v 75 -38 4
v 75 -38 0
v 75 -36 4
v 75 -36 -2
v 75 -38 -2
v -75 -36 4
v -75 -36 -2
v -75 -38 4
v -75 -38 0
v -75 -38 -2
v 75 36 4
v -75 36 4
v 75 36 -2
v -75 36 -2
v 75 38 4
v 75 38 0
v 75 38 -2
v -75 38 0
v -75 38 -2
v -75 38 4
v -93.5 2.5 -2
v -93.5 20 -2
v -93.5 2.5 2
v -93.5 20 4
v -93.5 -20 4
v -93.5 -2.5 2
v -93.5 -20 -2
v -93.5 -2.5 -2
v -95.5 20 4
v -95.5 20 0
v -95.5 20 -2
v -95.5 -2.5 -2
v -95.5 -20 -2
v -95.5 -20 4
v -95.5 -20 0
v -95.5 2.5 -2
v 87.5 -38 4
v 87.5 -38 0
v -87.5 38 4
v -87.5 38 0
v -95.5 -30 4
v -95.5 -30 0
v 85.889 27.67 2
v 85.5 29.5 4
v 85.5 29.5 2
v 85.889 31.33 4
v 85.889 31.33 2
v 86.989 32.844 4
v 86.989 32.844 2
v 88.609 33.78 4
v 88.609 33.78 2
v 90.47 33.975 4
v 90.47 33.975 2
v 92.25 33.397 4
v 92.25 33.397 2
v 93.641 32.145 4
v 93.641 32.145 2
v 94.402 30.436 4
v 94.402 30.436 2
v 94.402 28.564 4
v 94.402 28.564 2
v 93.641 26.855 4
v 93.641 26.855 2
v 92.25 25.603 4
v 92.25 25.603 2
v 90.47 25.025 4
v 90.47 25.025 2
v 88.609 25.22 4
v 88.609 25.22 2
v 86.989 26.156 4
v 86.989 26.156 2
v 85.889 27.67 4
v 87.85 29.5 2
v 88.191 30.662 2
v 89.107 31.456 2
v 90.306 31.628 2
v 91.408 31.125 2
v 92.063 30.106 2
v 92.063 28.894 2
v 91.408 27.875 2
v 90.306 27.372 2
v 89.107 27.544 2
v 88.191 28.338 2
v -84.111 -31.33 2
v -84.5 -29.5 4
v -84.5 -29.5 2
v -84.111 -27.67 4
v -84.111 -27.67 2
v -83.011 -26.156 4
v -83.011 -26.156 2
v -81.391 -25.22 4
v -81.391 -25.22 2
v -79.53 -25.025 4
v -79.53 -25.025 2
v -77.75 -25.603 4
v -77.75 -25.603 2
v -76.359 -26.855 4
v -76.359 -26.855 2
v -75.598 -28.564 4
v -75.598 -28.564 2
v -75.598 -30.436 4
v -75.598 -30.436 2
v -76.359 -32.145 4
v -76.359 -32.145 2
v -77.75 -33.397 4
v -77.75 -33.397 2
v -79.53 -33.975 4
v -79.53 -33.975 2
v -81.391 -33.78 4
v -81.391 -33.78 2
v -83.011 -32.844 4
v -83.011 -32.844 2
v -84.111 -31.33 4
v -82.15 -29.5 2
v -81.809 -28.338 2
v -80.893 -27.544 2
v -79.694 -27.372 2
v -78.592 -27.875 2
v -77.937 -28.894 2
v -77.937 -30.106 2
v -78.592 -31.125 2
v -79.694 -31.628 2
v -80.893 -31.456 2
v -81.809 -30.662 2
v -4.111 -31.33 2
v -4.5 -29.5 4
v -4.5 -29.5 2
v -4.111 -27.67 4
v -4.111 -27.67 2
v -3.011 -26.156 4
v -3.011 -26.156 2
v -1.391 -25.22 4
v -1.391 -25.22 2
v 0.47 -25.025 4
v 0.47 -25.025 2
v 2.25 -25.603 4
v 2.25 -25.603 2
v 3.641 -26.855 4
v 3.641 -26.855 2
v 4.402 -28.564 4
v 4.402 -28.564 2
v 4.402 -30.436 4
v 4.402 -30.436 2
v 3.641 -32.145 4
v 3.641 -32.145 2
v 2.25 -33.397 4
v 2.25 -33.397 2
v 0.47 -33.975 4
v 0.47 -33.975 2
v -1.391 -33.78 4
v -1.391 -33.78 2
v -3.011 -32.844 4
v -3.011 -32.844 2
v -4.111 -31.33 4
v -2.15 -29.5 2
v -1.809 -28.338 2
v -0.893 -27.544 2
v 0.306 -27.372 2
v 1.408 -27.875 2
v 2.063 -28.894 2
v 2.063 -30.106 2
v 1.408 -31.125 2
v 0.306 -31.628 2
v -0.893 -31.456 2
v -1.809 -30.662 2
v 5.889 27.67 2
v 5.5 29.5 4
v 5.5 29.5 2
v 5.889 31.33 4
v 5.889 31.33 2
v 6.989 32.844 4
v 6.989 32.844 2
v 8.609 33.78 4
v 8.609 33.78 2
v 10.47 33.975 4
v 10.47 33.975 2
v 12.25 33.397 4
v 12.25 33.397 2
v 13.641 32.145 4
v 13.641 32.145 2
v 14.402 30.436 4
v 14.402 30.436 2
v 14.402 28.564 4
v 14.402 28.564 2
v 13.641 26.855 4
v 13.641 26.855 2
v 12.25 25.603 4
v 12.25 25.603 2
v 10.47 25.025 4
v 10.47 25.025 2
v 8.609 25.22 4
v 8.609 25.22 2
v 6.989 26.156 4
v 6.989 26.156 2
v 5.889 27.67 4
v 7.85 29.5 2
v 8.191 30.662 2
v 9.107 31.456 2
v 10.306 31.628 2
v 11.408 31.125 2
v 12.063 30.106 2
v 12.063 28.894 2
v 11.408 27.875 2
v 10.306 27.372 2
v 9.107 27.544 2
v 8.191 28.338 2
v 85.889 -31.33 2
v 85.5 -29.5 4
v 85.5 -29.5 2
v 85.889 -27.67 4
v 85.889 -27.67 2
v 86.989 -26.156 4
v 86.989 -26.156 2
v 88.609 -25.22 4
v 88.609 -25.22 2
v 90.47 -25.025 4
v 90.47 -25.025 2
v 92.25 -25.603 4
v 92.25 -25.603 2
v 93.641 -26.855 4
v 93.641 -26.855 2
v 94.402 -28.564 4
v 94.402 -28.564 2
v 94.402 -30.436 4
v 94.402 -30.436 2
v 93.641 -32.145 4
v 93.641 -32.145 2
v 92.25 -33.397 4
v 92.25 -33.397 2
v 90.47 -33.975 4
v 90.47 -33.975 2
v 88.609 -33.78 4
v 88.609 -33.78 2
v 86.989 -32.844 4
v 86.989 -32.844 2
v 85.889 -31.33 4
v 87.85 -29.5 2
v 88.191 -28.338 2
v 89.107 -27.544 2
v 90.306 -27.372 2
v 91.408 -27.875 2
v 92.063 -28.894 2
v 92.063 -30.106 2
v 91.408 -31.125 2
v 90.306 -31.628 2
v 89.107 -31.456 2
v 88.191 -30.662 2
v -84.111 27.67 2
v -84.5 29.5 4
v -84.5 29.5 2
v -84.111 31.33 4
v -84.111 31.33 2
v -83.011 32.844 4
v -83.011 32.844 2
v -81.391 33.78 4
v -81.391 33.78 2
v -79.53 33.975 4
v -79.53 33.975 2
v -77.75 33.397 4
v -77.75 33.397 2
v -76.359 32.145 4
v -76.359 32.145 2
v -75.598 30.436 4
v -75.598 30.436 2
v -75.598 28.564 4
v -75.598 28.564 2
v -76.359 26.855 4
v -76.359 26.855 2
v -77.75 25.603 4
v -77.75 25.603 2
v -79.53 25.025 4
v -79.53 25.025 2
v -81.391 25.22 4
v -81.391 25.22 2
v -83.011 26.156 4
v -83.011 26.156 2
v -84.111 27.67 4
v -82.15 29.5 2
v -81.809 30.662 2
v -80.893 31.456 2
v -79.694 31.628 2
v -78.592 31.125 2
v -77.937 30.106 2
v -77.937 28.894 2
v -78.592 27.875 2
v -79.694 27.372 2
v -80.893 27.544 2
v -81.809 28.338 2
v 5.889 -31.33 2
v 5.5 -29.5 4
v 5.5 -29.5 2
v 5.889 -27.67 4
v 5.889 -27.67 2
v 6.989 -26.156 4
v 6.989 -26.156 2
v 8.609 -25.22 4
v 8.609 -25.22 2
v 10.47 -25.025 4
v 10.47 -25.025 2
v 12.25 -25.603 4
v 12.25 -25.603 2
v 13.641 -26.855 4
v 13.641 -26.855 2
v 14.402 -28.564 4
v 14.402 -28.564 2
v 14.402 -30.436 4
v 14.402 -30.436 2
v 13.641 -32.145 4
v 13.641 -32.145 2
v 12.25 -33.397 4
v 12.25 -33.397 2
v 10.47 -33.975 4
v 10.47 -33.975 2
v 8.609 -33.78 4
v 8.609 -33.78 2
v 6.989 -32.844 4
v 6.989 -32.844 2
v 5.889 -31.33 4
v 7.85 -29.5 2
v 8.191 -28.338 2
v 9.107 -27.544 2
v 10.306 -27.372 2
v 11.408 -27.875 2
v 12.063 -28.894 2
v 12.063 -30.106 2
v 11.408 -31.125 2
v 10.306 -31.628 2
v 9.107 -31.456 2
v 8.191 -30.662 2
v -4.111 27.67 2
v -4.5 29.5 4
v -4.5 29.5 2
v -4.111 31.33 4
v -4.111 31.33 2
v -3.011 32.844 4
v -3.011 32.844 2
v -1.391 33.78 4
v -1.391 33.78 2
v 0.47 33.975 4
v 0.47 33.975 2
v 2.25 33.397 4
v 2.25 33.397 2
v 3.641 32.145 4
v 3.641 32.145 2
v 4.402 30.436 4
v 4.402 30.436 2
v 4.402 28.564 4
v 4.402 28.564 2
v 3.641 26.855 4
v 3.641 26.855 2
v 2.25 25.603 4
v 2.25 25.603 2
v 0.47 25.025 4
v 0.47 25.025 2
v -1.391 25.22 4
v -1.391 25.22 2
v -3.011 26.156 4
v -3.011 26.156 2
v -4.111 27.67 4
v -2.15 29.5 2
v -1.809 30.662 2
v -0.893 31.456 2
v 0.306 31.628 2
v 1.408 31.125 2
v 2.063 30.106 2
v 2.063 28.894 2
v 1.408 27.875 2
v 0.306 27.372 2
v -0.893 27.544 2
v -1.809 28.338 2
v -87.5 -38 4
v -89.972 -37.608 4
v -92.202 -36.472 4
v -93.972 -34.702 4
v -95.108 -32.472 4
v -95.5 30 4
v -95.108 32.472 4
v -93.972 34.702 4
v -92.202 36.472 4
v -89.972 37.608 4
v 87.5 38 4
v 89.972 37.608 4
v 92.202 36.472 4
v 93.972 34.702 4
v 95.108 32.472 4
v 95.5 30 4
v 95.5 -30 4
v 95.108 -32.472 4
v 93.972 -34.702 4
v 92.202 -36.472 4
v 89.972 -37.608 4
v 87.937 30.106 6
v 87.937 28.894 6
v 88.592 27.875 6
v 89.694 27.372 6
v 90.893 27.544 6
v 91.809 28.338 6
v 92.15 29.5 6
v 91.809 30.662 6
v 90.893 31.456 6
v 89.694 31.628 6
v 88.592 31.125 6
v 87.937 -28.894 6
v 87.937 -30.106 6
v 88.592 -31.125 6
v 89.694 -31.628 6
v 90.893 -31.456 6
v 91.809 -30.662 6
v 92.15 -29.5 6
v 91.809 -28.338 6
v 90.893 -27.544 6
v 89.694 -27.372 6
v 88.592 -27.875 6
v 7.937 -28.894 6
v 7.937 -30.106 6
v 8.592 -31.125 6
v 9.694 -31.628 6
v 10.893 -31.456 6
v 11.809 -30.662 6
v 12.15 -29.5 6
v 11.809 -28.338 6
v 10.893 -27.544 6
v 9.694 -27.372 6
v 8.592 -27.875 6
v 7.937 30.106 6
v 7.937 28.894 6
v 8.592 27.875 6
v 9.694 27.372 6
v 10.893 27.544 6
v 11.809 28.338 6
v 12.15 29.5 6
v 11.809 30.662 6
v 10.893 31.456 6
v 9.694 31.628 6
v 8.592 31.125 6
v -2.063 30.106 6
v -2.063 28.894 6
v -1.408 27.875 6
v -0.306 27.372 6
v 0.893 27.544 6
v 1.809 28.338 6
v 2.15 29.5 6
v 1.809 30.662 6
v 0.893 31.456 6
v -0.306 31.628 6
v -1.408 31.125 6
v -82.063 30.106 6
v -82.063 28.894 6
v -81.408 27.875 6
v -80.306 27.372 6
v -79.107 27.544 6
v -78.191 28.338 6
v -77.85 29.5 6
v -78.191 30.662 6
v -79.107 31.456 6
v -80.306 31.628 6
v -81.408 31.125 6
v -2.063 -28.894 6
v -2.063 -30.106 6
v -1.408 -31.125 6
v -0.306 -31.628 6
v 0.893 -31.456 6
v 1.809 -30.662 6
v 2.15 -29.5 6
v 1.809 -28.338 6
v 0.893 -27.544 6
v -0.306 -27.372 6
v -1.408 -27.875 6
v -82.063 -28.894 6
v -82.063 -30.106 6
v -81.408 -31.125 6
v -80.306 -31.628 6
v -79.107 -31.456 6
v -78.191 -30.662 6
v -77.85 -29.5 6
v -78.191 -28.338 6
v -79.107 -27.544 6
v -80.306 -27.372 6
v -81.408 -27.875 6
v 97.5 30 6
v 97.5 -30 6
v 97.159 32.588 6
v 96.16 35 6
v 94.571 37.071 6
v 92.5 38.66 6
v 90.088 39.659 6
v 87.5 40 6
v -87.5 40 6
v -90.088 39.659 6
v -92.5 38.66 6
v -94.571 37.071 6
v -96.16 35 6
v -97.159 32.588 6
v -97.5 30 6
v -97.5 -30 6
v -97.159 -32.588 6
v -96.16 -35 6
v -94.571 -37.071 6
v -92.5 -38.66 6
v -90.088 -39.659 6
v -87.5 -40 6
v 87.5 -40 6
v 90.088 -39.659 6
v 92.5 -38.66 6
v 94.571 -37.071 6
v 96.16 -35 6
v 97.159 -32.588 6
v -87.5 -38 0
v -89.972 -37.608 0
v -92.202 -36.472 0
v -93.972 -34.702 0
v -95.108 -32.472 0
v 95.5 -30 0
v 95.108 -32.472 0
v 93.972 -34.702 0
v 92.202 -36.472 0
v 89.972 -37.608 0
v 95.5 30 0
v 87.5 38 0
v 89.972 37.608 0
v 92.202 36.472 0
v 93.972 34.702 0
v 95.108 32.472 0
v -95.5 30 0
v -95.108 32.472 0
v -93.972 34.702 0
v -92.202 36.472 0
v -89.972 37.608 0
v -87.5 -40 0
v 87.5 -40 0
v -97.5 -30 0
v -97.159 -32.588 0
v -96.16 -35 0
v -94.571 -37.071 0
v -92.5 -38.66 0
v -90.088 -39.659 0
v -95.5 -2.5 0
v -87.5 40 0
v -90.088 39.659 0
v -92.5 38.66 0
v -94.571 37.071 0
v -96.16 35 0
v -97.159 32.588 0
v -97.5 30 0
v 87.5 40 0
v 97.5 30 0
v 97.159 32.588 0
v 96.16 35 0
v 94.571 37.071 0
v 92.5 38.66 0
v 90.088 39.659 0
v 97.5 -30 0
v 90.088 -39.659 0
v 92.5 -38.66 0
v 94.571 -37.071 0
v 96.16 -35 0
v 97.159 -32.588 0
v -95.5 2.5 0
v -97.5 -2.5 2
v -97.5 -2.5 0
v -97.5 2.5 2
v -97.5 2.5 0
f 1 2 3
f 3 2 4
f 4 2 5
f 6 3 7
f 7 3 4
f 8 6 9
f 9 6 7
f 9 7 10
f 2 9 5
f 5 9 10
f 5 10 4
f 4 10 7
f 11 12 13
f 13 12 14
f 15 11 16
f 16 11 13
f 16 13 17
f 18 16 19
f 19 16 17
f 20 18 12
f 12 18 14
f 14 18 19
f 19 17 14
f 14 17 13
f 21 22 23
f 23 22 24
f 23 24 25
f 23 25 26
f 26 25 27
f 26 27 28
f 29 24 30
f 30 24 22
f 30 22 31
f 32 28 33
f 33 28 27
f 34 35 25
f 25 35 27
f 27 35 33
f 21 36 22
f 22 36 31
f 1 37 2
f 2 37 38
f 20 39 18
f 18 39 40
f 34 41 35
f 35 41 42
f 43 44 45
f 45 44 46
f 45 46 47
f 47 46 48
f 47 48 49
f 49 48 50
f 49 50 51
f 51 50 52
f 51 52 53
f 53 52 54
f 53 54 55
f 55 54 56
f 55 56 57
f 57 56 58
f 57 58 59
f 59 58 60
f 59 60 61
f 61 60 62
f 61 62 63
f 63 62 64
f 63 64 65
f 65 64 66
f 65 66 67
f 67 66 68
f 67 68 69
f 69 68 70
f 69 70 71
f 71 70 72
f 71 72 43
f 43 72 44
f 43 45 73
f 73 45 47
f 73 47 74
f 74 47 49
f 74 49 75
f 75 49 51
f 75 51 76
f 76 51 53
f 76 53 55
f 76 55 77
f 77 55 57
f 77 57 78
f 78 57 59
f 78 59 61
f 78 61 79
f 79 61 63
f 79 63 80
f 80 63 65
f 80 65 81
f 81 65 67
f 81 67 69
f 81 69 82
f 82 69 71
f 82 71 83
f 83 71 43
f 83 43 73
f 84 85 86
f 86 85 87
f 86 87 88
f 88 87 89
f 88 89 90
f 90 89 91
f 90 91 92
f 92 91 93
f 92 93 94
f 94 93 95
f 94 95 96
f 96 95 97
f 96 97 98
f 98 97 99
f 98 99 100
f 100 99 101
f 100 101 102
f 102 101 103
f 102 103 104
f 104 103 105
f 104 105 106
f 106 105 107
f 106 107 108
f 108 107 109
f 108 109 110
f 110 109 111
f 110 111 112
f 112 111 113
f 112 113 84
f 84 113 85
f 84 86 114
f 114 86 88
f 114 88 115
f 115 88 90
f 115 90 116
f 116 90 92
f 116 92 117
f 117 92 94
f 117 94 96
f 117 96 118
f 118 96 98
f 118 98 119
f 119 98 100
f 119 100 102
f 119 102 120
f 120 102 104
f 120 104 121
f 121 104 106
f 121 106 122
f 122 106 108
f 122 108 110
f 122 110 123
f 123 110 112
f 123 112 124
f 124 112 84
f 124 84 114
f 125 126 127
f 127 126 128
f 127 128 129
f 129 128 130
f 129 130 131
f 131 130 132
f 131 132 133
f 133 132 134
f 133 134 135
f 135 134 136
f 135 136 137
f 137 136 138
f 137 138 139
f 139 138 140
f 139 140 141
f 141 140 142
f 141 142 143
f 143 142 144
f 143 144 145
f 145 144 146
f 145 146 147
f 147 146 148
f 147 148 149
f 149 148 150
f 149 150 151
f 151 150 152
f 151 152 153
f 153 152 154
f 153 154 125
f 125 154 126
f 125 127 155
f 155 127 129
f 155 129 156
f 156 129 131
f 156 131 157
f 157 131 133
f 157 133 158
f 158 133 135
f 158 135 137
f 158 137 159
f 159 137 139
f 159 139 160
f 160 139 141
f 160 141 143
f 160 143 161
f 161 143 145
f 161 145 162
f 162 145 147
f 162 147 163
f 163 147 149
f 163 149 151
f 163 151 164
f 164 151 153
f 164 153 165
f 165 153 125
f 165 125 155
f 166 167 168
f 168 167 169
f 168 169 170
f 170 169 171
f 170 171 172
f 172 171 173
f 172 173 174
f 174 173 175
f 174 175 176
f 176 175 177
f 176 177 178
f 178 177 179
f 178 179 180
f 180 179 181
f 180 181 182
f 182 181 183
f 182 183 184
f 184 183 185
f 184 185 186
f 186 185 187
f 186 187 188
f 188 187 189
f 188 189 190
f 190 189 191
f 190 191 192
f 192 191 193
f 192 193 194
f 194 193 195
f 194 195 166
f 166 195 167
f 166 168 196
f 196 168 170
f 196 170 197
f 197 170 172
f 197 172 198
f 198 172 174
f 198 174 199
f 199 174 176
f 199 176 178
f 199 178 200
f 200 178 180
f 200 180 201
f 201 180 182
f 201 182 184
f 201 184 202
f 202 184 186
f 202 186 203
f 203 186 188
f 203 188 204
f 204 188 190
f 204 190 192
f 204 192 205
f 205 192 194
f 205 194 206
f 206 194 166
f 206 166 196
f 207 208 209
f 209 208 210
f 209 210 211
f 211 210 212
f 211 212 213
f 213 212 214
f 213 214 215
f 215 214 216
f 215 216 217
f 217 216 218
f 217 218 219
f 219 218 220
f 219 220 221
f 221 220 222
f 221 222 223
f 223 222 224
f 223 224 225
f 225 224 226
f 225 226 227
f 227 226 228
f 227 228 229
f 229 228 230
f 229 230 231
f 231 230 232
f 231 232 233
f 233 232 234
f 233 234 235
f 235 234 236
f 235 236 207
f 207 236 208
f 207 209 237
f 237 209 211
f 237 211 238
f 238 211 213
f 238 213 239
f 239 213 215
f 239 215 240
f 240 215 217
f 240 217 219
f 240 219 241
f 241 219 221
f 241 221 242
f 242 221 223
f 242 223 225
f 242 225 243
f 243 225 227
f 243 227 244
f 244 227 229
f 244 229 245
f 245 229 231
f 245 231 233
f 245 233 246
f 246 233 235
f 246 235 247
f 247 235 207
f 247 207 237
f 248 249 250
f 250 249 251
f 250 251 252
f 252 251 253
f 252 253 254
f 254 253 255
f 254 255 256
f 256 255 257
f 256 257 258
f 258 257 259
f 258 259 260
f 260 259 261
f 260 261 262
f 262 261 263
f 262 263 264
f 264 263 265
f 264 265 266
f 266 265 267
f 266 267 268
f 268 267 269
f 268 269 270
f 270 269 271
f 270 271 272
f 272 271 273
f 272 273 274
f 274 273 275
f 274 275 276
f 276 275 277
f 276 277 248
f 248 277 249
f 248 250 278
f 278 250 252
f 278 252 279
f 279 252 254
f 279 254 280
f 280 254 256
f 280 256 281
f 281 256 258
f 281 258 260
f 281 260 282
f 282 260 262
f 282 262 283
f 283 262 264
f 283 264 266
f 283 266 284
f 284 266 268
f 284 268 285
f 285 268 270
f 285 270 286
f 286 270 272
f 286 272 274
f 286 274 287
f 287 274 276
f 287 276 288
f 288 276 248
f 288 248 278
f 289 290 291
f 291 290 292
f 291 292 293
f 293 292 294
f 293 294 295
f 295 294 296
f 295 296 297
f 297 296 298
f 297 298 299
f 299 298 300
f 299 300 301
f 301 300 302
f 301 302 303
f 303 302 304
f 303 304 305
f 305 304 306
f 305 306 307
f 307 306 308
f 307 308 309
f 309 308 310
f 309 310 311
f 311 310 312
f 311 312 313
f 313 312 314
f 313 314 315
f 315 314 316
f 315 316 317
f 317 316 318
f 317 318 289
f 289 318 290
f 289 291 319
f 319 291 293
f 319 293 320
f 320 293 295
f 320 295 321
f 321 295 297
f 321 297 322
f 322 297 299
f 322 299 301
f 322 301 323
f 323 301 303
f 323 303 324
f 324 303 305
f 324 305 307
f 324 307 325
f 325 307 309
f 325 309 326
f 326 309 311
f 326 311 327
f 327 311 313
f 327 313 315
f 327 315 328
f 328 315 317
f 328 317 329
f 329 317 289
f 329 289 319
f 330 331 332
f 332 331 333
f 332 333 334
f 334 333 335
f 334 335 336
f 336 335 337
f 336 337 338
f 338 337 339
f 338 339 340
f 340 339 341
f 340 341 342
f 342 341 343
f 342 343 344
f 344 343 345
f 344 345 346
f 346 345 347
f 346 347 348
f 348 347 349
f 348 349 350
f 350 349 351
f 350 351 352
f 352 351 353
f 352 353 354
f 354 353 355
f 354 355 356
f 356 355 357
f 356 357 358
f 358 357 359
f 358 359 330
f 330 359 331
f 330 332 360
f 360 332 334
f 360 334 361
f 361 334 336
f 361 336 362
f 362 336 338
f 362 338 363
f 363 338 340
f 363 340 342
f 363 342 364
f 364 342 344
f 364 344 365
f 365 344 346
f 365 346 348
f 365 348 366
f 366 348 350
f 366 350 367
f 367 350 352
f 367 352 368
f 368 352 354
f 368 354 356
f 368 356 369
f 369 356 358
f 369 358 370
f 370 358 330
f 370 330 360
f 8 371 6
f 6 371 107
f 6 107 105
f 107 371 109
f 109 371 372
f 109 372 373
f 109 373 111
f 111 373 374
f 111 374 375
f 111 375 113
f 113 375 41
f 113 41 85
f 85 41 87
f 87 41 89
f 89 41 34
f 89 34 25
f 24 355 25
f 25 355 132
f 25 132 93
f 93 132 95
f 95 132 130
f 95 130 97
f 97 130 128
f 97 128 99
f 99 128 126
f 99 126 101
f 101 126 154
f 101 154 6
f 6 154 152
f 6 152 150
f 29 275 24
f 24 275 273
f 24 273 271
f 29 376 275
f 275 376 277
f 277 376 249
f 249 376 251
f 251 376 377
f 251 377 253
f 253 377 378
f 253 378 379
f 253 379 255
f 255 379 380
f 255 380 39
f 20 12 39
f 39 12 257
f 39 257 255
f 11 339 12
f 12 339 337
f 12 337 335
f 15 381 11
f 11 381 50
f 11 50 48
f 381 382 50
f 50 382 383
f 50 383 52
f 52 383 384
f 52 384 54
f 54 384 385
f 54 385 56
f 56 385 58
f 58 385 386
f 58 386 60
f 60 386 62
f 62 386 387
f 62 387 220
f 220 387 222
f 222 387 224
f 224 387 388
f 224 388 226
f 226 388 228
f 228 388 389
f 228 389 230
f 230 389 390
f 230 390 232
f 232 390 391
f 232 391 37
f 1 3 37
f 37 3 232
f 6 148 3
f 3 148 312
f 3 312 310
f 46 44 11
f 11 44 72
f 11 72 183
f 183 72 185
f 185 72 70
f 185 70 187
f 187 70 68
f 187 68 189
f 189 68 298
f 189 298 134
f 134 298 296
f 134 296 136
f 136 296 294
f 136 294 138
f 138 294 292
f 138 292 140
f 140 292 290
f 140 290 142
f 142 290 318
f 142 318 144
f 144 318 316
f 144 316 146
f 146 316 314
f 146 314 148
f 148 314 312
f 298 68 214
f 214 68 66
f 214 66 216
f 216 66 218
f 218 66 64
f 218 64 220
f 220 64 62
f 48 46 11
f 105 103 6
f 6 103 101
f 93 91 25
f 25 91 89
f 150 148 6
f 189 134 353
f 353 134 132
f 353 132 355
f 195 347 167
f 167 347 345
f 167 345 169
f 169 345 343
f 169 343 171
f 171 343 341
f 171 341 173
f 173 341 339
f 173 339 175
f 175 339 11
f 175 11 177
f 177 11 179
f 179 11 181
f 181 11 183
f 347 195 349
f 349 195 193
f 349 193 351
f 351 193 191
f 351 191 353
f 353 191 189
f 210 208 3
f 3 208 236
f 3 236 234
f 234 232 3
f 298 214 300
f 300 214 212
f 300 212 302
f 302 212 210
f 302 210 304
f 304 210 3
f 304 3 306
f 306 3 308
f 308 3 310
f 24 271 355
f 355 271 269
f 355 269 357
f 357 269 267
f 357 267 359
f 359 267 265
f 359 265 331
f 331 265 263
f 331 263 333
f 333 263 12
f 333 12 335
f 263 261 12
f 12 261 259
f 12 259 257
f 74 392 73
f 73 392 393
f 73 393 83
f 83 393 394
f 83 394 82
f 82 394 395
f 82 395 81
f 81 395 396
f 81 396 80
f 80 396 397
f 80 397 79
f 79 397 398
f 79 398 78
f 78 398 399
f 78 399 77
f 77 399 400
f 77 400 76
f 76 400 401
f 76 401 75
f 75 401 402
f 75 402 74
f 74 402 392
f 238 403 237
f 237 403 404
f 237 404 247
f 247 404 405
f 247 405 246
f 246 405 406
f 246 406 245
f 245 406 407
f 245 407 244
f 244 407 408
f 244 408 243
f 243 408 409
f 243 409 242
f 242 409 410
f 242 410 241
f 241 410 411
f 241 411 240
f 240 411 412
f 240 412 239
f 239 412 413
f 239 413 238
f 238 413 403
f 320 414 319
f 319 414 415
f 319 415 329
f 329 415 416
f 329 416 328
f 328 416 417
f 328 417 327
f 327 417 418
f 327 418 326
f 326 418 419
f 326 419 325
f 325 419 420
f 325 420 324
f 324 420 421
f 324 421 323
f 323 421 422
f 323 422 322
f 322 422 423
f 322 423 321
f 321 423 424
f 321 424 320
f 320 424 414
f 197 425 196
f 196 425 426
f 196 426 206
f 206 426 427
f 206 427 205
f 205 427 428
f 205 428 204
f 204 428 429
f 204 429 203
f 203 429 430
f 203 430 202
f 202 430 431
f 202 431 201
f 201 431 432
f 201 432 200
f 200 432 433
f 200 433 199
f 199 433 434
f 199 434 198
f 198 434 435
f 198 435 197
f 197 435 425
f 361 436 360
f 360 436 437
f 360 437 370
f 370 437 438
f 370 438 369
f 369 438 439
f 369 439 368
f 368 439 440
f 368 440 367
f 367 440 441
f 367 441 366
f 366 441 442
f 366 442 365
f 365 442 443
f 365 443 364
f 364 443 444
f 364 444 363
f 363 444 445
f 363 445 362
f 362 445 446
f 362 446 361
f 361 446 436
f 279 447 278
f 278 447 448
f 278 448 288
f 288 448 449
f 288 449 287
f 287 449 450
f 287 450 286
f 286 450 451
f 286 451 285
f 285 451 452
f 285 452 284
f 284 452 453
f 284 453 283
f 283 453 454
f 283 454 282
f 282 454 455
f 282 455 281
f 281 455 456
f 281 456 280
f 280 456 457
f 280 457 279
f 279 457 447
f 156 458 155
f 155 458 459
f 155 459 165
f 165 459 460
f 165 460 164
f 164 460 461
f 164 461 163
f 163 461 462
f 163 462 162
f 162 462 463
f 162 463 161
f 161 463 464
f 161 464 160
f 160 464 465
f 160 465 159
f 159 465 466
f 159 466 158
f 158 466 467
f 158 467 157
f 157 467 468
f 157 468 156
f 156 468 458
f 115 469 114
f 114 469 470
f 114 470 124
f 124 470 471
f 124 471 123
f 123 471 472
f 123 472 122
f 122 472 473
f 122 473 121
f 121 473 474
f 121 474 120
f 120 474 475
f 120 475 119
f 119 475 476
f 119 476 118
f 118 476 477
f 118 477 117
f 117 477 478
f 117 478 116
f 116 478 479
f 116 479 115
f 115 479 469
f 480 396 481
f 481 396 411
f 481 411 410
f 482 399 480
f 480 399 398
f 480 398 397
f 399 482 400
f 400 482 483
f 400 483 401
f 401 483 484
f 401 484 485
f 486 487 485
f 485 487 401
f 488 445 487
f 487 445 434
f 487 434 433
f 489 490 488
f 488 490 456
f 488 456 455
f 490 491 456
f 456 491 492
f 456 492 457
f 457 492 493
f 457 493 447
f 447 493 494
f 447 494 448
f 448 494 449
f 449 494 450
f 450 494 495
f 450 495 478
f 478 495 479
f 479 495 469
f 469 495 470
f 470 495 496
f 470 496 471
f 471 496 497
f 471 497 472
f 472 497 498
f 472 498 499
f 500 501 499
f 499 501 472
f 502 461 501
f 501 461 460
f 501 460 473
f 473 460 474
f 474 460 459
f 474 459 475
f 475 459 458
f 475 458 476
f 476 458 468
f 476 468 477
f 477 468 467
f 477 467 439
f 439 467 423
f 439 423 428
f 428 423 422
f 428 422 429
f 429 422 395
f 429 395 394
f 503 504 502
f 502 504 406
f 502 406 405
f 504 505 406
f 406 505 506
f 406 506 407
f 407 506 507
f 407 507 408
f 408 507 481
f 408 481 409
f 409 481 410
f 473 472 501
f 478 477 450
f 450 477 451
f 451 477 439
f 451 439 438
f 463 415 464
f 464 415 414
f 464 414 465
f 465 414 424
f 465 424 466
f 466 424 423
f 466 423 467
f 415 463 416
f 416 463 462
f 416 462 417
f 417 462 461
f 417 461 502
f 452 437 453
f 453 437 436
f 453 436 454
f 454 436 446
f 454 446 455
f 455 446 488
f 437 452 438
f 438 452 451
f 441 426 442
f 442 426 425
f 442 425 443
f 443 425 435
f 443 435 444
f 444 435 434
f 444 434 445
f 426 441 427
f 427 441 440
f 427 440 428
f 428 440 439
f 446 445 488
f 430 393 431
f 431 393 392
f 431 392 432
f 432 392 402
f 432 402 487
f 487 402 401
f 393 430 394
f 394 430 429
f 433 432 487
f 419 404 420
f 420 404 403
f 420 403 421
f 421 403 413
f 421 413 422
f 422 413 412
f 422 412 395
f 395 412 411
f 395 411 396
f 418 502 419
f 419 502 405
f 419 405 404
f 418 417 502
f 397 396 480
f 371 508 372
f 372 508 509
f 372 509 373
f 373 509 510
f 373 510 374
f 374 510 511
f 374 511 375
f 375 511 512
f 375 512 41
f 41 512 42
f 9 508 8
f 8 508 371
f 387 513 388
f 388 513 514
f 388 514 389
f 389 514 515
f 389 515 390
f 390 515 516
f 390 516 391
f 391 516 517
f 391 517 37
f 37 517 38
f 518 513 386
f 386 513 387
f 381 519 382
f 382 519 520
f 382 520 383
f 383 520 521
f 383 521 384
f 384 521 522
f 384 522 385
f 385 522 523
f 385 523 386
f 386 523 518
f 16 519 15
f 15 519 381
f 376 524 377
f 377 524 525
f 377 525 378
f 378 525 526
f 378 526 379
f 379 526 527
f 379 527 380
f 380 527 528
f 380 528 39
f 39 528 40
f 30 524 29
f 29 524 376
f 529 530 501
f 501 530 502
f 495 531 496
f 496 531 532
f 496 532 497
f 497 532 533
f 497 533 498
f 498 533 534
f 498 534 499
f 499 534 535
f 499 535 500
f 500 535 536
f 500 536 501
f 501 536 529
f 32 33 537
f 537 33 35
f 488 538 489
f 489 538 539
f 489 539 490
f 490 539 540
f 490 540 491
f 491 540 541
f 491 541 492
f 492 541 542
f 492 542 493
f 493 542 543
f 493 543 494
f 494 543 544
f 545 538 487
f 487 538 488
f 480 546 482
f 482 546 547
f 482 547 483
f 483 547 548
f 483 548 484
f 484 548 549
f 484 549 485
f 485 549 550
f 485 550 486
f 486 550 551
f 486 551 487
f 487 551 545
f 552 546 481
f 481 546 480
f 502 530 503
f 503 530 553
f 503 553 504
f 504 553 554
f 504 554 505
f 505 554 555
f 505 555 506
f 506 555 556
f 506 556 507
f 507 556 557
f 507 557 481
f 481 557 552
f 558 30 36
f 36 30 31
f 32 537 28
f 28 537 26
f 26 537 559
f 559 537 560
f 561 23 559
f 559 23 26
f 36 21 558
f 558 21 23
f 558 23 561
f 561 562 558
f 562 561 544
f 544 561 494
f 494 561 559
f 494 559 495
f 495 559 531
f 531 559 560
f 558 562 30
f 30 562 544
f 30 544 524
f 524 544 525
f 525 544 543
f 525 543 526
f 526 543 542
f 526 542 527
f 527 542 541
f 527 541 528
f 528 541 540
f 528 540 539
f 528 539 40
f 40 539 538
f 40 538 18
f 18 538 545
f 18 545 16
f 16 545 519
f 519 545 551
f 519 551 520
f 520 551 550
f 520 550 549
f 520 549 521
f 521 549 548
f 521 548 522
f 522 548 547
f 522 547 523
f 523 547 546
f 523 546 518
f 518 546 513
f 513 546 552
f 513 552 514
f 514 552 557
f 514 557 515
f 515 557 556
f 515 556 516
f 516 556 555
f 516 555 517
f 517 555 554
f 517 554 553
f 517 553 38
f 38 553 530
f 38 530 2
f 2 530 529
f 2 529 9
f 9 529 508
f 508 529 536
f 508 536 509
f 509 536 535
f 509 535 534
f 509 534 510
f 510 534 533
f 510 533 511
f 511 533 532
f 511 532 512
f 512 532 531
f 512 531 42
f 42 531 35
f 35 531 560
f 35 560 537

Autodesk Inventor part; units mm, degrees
ref_plane "YZ Plane" through (0, 0, 0) normal (1, 0, 0) x (0, 1, 0)
ref_plane "XZ Plane" through (0, 0, 0) normal (0, 1, 0) x (-1, 0, 0)
ref_plane "XY Plane" through (0, 0, 0) normal (0, 0, 1) x (1, 0, 0)
ref_plane "Work Plane1" through (0, 0, 0) normal (0, 0, 1) x (1, 0, 0)
sketch "Sketch1" plane through (0, 0, 0) normal (0, 0, 1) x (1, 0, 0)
  arc A0 (87.5, -38) -> (95.5, -30) centre (87.5, -30) ccw projected
  line L0 (87.5, -38) -> (-87.5, -38) projected
  arc A1 (-95.5, -30) -> (-87.5, -38) centre (-87.5, -30) ccw projected
  line L1 (-95.5, -30) -> (-95.5, 30) projected
  arc A2 (-87.5, 38) -> (-95.5, 30) centre (-87.5, 30) ccw projected
  line L2 (-87.5, 38) -> (87.5, 38) projected
  arc A3 (95.5, 30) -> (87.5, 38) centre (87.5, 30) ccw projected
  line L3 (95.5, 30) -> (95.5, -30) projected
  line L4 (-87.5, -40) -> (87.5, -40) projected
  arc A4 (87.5, -40) -> (97.5, -30) centre (87.5, -30) ccw projected
  line L5 (97.5, -30) -> (97.5, 30) projected
  arc A5 (97.5, 30) -> (87.5, 40) centre (87.5, 30) ccw projected
  line L6 (87.5, 40) -> (-87.5, 40) projected
  arc A6 (-87.5, 40) -> (-97.5, 30) centre (-87.5, 30) ccw projected
  line L7 (-97.5, 30) -> (-97.5, -30) projected
  arc A7 (-97.5, -30) -> (-87.5, -40) centre (-87.5, -30) ccw projected
  point P0 (0, 0)
extrude "Extrusion1" add sketch "Sketch1" along normal blind 4
sketch "Sketch2" plane through (0, 0, 4) normal (0, 0, 1) x (1, 0, 0)
  arc A0 (87.5, -40) -> (97.5, -30) centre (87.5, -30) ccw projected
  line L0 (97.5, -30) -> (97.5, 30) projected
  arc A1 (97.5, 30) -> (87.5, 40) centre (87.5, 30) ccw projected
  line L1 (87.5, 40) -> (-87.5, 40) projected
  arc A2 (-87.5, 40) -> (-97.5, 30) centre (-87.5, 30) ccw projected
  line L2 (-97.5, 30) -> (-97.5, -30) projected
  arc A3 (-97.5, -30) -> (-87.5, -40) centre (-87.5, -30) ccw projected
  line L3 (-87.5, -40) -> (87.5, -40) projected
  line L4 (-95.5, -30) -> (-95.5, 30) projected
  arc A4 (-87.5, 38) -> (-95.5, 30) centre (-87.5, 30) ccw projected
  line L5 (-87.5, 38) -> (87.5, 38) projected
  arc A5 (95.5, 30) -> (87.5, 38) centre (87.5, 30) ccw projected
  line L6 (95.5, 30) -> (95.5, -30) projected
  arc A6 (87.5, -38) -> (95.5, -30) centre (87.5, -30) ccw projected
  line L7 (87.5, -38) -> (-87.5, -38) projected
  arc A7 (-95.5, -30) -> (-87.5, -38) centre (-87.5, -30) ccw projected
  circle A8 centre (-80, -29.5) radius 2.15 projected
  circle A9 centre (0, -29.5) radius 2.15 projected
  circle A10 centre (-80, 29.5) radius 2.15 projected
  circle A11 centre (0, 29.5) radius 2.15 projected
  circle A12 centre (10, 29.5) radius 2.15 projected
  circle A13 centre (10, -29.5) radius 2.15 projected
  circle A14 centre (90, -29.5) radius 2.15 projected
  circle A15 centre (90, 29.5) radius 2.15 projected
  circle A16 centre (-80, 29.5) radius 1.75
  circle A17 centre (-80, -29.5) radius 1.75
  circle A18 centre (0, -29.5) radius 1.75
  circle A19 centre (10, -29.5) radius 1.75
  circle A20 centre (0, 29.5) radius 1.75
  circle A21 centre (10, 29.5) radius 1.75
  circle A22 centre (90, 29.5) radius 1.75
  circle A23 centre (90, -29.5) radius 1.75
  point P0 (0, 0)
  dimension "d2" = 3.5
  dimension "d3" = 3.5
  dimension "d4" = 3.5
  dimension "d5" = 3.5
  dimension "d6" = 3.5
  dimension "d7" = 3.5
  dimension "d8" = 3.5
  dimension "d9" = 3.5
extrude "Extrusion2" add sketch "Sketch2" along normal blind 2 contours L3 A3 L2 A2 L1 A1 L0 A0 | L4 A4 L5 A5 L6 A6 L7 A7
sketch "Sketch3" plane through (0, 0, 4) normal (0, 0, -1) x (-1, 0, 0)
  circle A0 centre (80, 29.5) radius 2.15 projected
  circle A1 centre (80, 29.5) radius 4.5
  circle A2 centre (80, -29.5) radius 2.15 projected
  circle A3 centre (80, -29.5) radius 4.5
  circle A4 centre (0, 29.5) radius 2.15 projected
  circle A5 centre (0, 29.5) radius 4.5
  circle A6 centre (0, -29.5) radius 2.15 projected
  circle A7 centre (0, -29.5) radius 4.5
  circle A8 centre (-10, 29.5) radius 2.15 projected
  circle A9 centre (-10, 29.5) radius 4.5
  circle A10 centre (-10, -29.5) radius 2.15 projected
  circle A11 centre (-10, -29.5) radius 4.5
  circle A12 centre (-90, 29.5) radius 2.15 projected
  circle A13 centre (-90, 29.5) radius 4.5
  circle A14 centre (-90, -29.5) radius 2.15 projected
  circle A15 centre (-90, -29.5) radius 4.5
  point P0 (0, 0)
  dimension "d17" = 9
extrude "Extrusion3" add sketch "Sketch3" along normal blind 2
sketch "Sketch4" plane through (0, 0, 4) normal (0, 0, -1) x (-1, 0, 0)
  line L0 (75, 36) -> (-75, 36)
  line L1 (-75, 36) -> (-75, 38)
  line L2 (-75, 38) -> (75, 38)
  line L3 (75, 38) -> (75, 36)
  line L4 (87.5, 38) -> (-87.5, 38) projected
  line L5 (-75, -36) -> (75, -36)
  line L6 (75, -38) -> (-75, -38)
  line L7 (75, -36) -> (75, -38)
  line L8 (-75, -38) -> (-75, -36)
  line L9 (-95.5, 20) -> (-93.5, 20)
  line L10 (-93.5, 20) -> (-93.5, -20)
  line L11 (-93.5, -20) -> (-95.5, -20)
  line L12 (-95.5, -20) -> (-95.5, 20)
  line L13 (-95.5, 30) -> (-95.5, -30) projected
  line L14 (93.5, 20) -> (95.5, 20)
  line L15 (95.5, 20) -> (95.5, -20)
  line L16 (95.5, -20) -> (93.5, -20)
  line L17 (93.5, -20) -> (93.5, 20)
  line L18 (95.5, -30) -> (95.5, 30) projected
  point P0 (0, 0)
  point P1 (0, 38)
  point P2 (0, -38)
  point P3 (-95.5, 0)
  point P4 (95.5, 0)
  dimension "d22" = 2
  dimension "d23" = 150
  dimension "d26" = 360
  dimension "d30" = 2
  dimension "d31" = 40
extrude "Extrusion4" add sketch "Sketch4" along normal blind 6 contours L0 L1 L2 L3 | L5 L7 L6 L8 | L14 L15 L16 L17
sketch "Sketch7" plane through (0, 0, -2) normal (0, 0, -1) x (-1, 0, 0)
  line L0 (93.5, -20) -> (93.5, 20) projected
  line L1 (97.5, 30) -> (97.5, -30) projected
  line L2 (93.5, 2.5) -> (97.5, 2.5)
  line L3 (97.5, 2.5) -> (97.5, -2.5)
  line L4 (97.5, -2.5) -> (93.5, -2.5)
  line L5 (93.5, -2.5) -> (93.5, 2.5)
  point P0 (0, 0)
  point P1 (93.5, 0)
  dimension "d38" = 5
extrude "Extrusion7" cut sketch "Sketch7" against normal blind 4
properties part number "led 7 seg v3_bottom"
